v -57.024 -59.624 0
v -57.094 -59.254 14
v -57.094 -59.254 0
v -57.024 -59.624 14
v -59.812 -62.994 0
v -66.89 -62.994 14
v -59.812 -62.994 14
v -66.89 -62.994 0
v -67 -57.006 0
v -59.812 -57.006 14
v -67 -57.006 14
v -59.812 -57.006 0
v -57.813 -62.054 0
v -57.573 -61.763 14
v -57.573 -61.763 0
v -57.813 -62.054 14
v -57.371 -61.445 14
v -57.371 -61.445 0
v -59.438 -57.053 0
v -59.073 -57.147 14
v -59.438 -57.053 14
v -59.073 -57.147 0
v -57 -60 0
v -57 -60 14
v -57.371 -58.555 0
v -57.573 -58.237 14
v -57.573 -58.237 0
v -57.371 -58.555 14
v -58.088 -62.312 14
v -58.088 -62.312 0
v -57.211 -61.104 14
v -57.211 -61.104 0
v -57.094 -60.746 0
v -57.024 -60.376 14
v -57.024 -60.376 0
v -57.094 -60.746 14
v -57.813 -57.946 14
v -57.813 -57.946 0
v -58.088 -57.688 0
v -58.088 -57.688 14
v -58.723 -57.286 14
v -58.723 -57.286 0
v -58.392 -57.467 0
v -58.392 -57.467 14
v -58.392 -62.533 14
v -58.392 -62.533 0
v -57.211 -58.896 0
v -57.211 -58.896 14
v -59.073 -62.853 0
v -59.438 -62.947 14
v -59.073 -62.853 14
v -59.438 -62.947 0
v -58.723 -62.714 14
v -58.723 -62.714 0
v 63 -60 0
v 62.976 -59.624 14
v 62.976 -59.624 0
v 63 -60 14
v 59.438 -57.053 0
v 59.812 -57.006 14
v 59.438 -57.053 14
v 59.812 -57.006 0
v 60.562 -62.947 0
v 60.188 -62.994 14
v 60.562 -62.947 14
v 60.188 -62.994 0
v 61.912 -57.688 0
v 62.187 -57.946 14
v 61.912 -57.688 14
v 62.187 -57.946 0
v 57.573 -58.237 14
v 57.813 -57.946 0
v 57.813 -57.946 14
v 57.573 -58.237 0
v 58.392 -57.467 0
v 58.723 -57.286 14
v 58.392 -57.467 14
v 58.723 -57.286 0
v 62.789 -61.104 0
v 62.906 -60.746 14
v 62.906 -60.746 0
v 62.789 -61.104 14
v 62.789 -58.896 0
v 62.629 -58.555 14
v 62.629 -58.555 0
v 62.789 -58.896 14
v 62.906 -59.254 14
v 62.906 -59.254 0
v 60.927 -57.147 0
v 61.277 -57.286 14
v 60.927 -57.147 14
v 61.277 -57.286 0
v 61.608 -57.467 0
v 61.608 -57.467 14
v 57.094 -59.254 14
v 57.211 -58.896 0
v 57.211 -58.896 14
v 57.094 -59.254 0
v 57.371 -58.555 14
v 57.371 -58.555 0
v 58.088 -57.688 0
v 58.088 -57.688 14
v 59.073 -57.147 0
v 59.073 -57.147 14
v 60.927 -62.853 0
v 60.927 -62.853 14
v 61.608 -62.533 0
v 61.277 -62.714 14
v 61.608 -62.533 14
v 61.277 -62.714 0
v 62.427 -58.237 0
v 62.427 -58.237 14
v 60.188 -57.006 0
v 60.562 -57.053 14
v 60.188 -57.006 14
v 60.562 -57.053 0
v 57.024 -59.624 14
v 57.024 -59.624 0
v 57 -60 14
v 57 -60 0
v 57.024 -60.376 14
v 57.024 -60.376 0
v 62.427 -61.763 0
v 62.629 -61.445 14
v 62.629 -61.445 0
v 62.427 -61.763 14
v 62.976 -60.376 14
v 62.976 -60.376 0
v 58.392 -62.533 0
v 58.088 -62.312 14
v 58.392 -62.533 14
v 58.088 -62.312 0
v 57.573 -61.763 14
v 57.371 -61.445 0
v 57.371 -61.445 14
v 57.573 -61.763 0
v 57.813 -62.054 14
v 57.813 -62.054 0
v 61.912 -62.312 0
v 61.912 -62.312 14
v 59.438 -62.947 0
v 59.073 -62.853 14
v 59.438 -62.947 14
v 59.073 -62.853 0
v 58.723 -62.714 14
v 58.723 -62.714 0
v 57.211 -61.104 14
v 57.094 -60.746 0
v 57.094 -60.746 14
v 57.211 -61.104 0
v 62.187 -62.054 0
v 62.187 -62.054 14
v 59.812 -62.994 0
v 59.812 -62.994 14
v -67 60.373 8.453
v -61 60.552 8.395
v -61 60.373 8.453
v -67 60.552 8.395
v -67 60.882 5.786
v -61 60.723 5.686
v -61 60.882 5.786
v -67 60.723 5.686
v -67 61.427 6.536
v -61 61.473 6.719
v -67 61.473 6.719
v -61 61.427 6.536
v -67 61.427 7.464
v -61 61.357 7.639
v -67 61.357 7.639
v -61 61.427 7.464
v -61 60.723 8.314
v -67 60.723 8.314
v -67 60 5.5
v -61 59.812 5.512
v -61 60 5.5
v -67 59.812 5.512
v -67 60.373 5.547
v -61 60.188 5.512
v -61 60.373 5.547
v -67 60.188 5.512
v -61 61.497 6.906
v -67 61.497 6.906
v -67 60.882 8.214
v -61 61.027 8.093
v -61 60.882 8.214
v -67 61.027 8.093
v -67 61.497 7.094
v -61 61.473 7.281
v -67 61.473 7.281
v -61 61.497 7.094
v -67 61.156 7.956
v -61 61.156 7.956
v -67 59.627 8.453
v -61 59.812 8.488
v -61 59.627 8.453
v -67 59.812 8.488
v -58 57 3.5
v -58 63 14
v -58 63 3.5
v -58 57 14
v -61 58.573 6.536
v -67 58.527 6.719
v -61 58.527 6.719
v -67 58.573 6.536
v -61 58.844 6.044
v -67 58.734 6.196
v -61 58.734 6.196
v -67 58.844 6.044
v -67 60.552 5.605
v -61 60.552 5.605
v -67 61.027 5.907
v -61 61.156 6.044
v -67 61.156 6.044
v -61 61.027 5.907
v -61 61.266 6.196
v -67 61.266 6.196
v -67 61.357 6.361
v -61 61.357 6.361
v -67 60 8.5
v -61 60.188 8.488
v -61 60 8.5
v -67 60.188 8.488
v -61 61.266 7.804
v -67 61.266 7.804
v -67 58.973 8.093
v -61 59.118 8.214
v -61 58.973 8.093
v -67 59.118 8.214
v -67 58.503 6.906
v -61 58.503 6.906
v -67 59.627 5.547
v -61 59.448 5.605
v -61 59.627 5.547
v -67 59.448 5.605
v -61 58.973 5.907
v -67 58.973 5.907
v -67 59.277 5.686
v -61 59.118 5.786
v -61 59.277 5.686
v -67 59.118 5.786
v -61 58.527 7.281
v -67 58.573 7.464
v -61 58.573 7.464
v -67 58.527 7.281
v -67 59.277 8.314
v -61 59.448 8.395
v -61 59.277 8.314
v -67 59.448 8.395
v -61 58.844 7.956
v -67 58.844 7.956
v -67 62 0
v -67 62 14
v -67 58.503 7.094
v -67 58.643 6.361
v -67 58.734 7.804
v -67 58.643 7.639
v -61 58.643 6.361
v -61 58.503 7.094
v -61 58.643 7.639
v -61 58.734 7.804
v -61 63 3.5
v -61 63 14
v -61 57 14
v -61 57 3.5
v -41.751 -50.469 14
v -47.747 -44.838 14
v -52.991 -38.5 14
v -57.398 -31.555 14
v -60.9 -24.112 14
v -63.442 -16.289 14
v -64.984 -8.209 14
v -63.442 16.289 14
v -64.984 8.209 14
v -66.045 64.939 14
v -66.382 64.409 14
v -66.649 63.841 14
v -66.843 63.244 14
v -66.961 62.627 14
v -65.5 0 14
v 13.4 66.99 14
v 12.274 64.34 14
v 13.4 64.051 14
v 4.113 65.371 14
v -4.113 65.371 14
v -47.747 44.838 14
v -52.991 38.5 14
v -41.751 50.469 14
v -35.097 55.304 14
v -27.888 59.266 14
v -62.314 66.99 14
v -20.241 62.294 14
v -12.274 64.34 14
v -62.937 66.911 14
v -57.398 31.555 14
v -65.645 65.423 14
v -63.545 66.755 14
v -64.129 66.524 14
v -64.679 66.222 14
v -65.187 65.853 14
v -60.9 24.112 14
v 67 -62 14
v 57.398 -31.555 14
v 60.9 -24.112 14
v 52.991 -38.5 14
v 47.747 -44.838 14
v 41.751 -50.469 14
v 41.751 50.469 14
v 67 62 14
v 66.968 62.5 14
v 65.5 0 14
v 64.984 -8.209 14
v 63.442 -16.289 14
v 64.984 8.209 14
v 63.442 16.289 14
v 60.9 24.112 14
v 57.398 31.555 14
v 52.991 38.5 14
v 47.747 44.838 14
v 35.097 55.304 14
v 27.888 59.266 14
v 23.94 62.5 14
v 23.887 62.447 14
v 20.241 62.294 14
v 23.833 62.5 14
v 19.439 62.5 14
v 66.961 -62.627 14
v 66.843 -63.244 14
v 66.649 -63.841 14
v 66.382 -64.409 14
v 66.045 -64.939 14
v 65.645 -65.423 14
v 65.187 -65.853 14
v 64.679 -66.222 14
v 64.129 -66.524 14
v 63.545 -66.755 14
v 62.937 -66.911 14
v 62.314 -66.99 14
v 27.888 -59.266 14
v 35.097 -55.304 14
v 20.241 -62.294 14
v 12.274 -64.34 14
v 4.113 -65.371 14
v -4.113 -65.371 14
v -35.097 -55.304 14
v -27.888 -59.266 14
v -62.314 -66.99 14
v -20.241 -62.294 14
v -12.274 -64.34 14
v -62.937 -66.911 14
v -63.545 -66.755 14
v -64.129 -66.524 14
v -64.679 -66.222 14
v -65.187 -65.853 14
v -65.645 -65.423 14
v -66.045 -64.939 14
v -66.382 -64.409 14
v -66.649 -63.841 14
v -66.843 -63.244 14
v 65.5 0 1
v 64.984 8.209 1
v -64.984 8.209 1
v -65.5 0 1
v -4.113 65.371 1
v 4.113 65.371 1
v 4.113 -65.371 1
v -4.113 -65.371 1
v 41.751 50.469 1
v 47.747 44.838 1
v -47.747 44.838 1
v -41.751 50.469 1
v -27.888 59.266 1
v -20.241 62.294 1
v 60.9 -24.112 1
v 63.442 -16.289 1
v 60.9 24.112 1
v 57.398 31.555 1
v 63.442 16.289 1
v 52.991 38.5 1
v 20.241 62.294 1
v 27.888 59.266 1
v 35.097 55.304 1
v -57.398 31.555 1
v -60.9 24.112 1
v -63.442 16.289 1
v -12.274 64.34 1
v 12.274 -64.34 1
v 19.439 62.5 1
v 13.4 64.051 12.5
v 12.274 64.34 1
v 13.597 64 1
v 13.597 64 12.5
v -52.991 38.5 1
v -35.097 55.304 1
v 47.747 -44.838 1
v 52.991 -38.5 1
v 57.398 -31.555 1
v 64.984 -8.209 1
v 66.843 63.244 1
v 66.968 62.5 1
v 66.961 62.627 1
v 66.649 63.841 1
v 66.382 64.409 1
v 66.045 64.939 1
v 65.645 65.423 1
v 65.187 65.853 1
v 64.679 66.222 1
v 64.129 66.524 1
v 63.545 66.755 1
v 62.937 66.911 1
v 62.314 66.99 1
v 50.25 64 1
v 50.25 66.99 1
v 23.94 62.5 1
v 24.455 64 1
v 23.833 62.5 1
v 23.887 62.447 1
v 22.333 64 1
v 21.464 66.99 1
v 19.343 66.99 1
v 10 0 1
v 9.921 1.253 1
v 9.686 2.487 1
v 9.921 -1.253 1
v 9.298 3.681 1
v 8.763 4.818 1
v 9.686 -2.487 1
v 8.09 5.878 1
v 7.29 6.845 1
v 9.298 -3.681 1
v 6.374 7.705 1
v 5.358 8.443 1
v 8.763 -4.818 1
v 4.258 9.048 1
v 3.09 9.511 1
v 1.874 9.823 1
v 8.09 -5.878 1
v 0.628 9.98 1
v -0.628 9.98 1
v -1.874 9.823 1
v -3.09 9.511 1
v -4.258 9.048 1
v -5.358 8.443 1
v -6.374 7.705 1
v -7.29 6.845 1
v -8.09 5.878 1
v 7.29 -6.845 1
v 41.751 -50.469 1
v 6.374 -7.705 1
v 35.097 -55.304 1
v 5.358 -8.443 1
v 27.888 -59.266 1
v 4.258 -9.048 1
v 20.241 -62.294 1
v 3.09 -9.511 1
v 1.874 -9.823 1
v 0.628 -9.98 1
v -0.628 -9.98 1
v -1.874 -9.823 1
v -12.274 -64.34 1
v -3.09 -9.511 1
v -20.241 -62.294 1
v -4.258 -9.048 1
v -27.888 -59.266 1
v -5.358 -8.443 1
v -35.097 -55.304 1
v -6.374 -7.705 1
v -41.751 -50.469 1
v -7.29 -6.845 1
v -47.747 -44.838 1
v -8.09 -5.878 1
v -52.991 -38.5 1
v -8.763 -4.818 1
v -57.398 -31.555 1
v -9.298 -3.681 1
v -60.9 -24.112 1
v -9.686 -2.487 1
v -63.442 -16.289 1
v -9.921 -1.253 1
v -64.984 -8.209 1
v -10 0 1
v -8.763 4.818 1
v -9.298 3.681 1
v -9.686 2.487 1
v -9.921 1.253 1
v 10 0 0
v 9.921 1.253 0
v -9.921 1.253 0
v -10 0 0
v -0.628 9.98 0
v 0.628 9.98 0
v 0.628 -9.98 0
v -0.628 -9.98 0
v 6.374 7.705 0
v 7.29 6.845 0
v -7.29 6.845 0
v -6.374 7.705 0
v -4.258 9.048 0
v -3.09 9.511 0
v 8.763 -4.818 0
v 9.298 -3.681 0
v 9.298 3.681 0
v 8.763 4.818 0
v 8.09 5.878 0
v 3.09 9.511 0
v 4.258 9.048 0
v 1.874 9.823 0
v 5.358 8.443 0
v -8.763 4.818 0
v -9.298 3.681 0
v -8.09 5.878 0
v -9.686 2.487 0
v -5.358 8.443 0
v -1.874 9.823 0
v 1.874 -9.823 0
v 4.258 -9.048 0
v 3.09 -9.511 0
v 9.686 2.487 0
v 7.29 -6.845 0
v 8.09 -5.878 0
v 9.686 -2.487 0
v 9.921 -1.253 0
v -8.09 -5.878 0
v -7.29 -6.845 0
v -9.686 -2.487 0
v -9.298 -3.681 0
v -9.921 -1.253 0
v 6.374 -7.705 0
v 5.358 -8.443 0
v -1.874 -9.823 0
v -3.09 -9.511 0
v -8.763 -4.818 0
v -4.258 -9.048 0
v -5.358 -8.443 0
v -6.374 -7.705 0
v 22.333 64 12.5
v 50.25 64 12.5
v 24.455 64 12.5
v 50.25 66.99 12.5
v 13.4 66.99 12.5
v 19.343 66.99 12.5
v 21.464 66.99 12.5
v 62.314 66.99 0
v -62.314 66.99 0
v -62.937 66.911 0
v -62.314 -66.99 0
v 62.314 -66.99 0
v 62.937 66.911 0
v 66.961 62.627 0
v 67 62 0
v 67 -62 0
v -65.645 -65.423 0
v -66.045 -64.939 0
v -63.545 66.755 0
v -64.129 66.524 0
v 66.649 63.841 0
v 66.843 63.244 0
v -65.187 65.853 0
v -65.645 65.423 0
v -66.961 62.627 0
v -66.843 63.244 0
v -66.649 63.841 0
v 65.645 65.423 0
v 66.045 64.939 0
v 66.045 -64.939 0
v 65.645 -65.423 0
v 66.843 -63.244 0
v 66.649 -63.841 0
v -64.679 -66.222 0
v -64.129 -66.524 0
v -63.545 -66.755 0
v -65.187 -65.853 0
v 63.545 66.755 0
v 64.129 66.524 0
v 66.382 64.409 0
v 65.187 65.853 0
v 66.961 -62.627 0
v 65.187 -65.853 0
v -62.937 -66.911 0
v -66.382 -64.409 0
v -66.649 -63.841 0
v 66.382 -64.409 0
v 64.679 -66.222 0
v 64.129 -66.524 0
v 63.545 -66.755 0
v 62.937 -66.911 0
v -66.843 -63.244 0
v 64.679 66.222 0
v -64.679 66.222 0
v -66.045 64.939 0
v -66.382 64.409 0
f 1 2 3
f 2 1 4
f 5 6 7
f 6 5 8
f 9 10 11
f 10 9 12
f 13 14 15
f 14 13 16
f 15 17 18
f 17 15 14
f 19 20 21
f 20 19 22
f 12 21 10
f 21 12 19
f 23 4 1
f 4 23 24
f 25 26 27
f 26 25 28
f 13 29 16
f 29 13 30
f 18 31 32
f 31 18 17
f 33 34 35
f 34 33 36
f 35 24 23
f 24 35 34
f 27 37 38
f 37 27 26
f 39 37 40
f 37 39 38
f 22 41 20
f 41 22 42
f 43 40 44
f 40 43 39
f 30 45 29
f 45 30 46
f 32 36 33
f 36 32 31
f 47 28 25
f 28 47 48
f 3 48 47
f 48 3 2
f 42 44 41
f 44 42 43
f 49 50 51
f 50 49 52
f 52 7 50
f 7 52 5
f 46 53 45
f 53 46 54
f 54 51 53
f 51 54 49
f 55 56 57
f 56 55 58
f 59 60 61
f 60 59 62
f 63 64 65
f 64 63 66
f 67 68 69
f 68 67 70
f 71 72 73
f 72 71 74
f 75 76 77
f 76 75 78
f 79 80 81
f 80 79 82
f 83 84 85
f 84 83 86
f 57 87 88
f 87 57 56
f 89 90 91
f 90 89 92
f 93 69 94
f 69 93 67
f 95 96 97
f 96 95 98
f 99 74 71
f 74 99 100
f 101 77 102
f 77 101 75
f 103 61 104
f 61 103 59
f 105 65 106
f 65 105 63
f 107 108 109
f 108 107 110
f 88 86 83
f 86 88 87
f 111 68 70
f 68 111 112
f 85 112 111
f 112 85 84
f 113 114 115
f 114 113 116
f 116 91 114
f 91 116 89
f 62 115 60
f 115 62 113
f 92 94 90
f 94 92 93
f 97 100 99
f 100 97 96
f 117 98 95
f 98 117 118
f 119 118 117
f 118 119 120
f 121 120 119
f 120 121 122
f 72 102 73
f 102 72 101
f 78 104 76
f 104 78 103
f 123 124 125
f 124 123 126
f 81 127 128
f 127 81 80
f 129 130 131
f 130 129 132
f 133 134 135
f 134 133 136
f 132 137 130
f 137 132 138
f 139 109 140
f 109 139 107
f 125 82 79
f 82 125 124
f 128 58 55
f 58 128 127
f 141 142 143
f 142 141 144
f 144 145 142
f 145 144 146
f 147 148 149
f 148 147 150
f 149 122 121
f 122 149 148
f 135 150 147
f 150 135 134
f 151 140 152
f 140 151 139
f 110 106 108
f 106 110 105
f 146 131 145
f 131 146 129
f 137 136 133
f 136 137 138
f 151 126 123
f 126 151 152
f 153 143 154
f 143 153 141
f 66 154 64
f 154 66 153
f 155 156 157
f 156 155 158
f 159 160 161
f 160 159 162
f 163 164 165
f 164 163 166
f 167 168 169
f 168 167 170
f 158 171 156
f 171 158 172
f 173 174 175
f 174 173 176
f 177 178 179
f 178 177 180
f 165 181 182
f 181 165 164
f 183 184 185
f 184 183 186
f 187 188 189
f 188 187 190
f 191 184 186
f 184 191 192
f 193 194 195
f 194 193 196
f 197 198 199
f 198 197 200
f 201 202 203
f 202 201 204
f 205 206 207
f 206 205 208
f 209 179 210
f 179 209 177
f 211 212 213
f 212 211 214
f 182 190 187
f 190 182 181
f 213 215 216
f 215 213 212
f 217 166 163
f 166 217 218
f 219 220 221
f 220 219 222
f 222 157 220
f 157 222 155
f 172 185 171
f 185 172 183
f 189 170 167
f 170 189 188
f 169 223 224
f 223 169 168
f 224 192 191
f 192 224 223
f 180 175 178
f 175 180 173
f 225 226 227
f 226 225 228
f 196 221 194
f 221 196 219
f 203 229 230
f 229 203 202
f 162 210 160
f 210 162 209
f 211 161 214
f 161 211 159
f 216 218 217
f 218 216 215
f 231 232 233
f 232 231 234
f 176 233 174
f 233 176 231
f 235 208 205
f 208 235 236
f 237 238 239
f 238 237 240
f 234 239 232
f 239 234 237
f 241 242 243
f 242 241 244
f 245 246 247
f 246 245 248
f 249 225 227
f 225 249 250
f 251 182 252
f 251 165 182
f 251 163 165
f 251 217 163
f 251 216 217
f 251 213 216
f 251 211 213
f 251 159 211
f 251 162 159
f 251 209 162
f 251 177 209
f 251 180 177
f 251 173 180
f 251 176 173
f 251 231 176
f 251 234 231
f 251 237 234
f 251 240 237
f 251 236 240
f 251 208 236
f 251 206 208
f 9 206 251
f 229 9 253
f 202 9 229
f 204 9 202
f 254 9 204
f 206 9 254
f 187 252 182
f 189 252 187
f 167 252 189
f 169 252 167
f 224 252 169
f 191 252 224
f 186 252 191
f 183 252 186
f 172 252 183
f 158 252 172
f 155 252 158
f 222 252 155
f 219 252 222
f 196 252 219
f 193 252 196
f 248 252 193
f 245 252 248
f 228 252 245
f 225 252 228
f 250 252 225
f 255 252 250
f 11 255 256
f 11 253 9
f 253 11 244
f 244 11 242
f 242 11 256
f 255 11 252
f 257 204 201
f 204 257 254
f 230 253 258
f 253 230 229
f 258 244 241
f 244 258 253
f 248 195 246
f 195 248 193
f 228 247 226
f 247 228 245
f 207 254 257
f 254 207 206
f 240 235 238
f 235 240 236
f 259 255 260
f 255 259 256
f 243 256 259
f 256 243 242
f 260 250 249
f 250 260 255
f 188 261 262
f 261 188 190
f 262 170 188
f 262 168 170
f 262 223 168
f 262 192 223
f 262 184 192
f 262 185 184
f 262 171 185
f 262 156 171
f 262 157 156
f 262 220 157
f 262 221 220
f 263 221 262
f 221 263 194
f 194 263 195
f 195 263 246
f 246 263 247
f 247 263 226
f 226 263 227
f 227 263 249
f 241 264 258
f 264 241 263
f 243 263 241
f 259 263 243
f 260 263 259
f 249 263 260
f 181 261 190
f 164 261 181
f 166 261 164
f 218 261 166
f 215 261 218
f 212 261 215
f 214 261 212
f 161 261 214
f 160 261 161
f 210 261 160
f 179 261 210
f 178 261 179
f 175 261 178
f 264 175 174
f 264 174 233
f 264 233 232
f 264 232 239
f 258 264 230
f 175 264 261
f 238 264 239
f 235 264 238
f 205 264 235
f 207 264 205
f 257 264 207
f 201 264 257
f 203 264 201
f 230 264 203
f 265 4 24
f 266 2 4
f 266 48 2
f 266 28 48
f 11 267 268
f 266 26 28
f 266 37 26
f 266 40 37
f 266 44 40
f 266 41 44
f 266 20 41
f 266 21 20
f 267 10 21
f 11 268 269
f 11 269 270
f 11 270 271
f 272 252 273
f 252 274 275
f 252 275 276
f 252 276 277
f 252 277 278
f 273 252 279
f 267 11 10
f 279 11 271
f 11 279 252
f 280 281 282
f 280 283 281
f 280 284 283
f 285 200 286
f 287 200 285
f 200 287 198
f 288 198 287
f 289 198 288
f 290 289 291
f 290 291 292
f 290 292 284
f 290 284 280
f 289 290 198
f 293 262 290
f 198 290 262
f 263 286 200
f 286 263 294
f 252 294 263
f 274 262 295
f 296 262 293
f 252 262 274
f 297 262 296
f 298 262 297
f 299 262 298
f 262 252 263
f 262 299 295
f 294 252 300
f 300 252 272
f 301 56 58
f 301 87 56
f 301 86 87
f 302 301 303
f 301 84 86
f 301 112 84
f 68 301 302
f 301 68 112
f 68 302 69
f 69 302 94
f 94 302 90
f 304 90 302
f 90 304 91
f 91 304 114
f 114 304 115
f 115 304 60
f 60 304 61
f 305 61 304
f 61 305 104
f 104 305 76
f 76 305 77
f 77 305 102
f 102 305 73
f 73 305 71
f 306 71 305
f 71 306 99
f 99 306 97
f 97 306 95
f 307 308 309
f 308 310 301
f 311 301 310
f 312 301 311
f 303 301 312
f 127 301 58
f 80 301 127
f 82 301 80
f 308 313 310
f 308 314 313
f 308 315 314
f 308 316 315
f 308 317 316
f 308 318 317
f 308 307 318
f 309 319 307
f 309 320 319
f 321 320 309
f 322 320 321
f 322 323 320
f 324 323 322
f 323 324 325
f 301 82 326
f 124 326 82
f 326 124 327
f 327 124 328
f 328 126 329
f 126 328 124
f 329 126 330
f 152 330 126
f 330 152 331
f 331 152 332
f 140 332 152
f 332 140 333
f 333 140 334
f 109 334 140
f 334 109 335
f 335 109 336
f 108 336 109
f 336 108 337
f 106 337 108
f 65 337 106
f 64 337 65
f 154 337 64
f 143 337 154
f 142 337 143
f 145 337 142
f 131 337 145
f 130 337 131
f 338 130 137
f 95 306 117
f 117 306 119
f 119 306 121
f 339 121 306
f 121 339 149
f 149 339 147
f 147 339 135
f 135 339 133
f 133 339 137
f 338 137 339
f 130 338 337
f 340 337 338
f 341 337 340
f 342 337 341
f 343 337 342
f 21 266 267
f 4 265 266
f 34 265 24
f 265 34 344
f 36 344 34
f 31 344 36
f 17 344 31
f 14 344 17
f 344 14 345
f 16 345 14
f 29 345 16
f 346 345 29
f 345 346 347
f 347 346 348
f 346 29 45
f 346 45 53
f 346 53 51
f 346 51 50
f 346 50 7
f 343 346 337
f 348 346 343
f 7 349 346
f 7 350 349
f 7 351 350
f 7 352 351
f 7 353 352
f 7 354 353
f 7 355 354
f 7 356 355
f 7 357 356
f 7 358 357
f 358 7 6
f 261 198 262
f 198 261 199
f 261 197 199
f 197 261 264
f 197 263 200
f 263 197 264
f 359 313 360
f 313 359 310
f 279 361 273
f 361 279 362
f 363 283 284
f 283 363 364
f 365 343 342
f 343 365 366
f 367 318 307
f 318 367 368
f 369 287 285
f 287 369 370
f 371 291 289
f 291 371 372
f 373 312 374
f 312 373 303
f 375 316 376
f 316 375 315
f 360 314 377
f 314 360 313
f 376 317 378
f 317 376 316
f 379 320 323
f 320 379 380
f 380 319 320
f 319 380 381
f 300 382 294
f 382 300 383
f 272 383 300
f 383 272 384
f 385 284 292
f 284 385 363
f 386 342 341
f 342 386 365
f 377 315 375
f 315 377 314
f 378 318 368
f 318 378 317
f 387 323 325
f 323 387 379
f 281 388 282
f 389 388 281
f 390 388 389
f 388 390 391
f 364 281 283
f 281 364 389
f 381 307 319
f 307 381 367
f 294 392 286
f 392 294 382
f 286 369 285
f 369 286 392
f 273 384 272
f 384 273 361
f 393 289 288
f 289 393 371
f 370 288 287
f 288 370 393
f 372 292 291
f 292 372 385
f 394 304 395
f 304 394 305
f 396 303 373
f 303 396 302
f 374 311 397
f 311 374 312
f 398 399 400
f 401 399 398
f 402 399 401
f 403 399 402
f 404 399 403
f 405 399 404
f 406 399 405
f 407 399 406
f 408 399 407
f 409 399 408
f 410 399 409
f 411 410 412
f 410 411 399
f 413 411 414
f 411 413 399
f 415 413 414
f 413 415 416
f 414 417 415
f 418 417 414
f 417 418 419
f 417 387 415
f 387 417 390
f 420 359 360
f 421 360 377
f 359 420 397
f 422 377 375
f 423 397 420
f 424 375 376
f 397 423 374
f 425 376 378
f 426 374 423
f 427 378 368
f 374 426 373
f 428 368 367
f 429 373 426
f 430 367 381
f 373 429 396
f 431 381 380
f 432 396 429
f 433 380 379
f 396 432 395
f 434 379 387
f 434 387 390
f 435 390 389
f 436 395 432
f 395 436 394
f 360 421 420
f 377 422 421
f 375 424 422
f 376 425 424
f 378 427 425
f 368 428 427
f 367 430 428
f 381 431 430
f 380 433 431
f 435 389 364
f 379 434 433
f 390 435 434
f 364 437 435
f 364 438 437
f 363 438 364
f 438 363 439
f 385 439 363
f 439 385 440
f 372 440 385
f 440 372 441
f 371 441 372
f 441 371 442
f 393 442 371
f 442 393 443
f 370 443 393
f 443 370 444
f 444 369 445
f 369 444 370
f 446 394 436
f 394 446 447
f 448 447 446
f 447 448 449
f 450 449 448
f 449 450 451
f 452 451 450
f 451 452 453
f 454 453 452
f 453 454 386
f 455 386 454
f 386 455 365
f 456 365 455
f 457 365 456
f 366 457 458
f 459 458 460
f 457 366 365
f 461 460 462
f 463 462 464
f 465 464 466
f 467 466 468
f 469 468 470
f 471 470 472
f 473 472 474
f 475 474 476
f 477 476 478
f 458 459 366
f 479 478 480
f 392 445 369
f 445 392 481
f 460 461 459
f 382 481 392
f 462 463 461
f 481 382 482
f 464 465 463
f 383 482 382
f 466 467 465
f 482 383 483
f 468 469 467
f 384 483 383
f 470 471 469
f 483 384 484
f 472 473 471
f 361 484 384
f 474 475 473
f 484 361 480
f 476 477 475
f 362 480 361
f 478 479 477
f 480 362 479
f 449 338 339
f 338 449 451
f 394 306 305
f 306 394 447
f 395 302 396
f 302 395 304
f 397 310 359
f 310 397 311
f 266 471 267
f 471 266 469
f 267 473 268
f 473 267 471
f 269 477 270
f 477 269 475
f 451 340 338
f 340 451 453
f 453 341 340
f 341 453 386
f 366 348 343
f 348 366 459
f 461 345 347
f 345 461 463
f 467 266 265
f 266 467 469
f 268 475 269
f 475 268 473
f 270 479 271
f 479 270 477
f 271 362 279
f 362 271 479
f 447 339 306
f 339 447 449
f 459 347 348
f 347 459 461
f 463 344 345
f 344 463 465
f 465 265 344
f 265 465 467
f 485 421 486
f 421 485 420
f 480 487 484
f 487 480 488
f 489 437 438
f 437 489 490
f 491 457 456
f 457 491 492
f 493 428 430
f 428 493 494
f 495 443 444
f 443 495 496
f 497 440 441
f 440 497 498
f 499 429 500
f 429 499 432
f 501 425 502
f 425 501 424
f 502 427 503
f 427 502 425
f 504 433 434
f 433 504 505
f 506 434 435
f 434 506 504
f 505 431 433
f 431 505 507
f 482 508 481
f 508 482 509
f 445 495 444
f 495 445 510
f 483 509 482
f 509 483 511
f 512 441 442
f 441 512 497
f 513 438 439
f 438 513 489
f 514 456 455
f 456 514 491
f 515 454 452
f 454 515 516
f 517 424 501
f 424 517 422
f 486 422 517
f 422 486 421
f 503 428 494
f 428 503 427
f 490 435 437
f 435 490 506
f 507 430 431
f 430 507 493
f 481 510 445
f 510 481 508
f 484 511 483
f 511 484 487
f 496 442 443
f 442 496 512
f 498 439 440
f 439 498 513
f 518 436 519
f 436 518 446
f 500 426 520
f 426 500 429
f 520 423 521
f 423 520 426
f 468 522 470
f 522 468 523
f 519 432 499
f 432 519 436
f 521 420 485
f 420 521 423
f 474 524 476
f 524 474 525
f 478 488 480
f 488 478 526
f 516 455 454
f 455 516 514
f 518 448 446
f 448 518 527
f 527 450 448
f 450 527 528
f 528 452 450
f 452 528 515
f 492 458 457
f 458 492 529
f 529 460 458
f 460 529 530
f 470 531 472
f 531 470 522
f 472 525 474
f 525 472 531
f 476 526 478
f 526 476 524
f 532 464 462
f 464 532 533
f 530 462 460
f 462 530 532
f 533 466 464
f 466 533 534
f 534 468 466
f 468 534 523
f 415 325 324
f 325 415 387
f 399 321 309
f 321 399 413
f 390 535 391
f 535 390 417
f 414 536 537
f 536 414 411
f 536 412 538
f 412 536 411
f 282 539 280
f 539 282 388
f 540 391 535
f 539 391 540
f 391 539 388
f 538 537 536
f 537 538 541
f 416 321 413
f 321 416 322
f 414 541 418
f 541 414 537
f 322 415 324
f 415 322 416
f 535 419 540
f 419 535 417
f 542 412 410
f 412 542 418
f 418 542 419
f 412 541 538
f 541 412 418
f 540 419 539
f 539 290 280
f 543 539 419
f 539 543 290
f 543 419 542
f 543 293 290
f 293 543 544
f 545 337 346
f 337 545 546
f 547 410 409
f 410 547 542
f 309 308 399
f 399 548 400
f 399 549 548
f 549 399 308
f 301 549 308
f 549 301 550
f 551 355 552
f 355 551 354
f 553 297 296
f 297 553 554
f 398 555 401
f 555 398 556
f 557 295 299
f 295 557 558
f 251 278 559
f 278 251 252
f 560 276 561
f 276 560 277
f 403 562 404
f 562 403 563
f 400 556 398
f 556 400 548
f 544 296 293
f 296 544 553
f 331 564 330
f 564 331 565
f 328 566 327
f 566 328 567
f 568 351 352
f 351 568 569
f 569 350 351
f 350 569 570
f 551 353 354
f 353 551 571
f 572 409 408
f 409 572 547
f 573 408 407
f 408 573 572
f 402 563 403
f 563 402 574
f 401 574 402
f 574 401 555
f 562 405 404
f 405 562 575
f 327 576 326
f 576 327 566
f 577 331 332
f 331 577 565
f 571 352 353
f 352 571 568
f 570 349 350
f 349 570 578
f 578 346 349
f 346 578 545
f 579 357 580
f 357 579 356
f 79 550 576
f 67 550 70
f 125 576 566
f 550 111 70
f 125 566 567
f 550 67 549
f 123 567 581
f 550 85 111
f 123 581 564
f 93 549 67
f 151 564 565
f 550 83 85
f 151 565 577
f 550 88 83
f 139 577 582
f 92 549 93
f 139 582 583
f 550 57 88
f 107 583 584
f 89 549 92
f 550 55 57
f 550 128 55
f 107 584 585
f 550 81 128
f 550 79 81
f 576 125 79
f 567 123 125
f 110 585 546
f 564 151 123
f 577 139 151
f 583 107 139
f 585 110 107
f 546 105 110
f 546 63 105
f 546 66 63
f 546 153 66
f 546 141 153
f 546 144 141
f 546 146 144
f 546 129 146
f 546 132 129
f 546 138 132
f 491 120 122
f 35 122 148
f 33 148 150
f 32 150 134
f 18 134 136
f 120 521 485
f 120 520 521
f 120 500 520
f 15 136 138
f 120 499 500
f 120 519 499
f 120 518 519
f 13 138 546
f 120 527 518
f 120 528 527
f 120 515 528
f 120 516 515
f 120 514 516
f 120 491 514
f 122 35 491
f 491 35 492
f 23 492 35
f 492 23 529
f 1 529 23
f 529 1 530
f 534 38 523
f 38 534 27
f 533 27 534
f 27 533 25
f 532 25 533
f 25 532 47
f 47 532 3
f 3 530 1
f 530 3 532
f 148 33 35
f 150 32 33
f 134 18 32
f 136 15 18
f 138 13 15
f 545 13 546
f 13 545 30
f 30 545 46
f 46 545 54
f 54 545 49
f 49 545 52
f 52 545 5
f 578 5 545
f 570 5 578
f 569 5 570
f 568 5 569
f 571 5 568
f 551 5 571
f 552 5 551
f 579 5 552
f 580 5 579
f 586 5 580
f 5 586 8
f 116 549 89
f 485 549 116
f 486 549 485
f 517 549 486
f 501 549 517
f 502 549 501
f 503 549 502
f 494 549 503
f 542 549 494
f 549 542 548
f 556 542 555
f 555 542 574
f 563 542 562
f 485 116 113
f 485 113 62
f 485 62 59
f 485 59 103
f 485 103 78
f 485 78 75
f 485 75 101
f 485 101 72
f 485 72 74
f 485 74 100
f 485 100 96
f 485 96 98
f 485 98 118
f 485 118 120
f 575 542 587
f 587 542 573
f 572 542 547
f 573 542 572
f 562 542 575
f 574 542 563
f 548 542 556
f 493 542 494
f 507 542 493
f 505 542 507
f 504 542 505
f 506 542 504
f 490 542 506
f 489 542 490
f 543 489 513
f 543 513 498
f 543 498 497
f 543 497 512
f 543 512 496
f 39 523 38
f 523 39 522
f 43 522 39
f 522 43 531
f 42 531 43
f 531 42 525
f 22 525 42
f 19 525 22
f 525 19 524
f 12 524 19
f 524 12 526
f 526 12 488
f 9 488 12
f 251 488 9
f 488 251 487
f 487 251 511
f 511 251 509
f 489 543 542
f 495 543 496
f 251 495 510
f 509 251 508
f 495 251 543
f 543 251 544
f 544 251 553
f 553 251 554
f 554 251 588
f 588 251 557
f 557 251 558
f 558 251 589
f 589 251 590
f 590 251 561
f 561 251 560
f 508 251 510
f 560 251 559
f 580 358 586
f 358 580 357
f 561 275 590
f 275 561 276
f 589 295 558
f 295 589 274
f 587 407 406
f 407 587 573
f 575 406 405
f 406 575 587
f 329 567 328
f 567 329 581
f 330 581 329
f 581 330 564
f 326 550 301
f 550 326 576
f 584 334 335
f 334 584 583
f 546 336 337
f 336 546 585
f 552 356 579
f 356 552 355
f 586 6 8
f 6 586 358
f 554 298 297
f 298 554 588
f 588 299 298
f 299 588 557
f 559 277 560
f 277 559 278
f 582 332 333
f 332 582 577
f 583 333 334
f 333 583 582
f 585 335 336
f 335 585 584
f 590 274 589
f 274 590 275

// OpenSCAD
$fn = 50;


difference() {
	union() {
		translate(v = [0, 0, 0]) {
			rotate(a = [0, 0, 0]) {
				hull() {
					translate(v = [-62.0000000000, 62.0000000000, 0]) {
						rotate(a = [0, 0, 0]) {
							translate(v = [0, 0, 0]) {
								rotate(a = [0, 0, 0]) {
									cylinder(h = 14, r = 5);
								}
							}
						}
					}
					translate(v = [62.0000000000, 62.0000000000, 0]) {
						rotate(a = [0, 0, 0]) {
							translate(v = [0, 0, 0]) {
								rotate(a = [0, 0, 0]) {
									cylinder(h = 14, r = 5);
								}
							}
						}
					}
					translate(v = [-62.0000000000, -62.0000000000, 0]) {
						rotate(a = [0, 0, 0]) {
							translate(v = [0, 0, 0]) {
								rotate(a = [0, 0, 0]) {
									cylinder(h = 14, r = 5);
								}
							}
						}
					}
					translate(v = [62.0000000000, -62.0000000000, 0]) {
						rotate(a = [0, 0, 0]) {
							translate(v = [0, 0, 0]) {
								rotate(a = [0, 0, 0]) {
									cylinder(h = 14, r = 5);
								}
							}
						}
					}
				}
			}
		}
	}
	union() {
		translate(v = [-67.5000000000, -60.0000000000, -125]) {
			rotate(a = [0, 0, 0]) {
				hull() {
					translate(v = [7.5000000000, 0, 0]) {
						rotate(a = [0, 0, 0]) {
							translate(v = [0, 0, 0]) {
								rotate(a = [0, 0, 0]) {
									cylinder(h = 250, r = 3.0000000000);
								}
							}
						}
					}
					translate(v = [-7.5000000000, 0, 0]) {
						rotate(a = [0, 0, 0]) {
							translate(v = [0, 0, 0]) {
								rotate(a = [0, 0, 0]) {
									cylinder(h = 250, r = 3.0000000000);
								}
							}
						}
					}
				}
			}
		}
		translate(v = [60.0000000000, -60.0000000000, -125.0000000000]) {
			rotate(a = [0, 0, 0]) {
				cylinder(h = 250, r = 3.0000000000);
			}
		}
		translate(v = [-67.0000000000, 60.0000000000, 7.0000000000]) {
			rotate(a = [0, 90, 0]) {
				cylinder(h = 9, r = 1.5000000000);
			}
		}
		translate(v = [-61.0000000000, 57.0000000000, 3.5000000000]) {
			rotate(a = [0, 0, 0]) {
				cube(size = [3, 6, 10.5000000000]);
			}
		}
		translate(v = [0, 0, 1.0000000000]) {
			rotate(a = [0, 0, 0]) {
				cylinder(h = 16, r = 65.5000000000);
			}
		}
		translate(v = [0, 0, -7.0000000000]) {
			rotate(a = [0, 0, 0]) {
				cylinder(h = 14, r = 10.0000000000);
			}
		}
		translate(v = [0.0000000000, 62.5000000000, 1]) {
			rotate(a = [0, 0, 0]) {
				cube(size = [67.0000000000, 1.5000000000, 16]);
			}
		}
		translate(v = [50.2500000000, 62.5000000000, 1]) {
			rotate(a = [0, 0, 0]) {
				cube(size = [16.7500000000, 4.5000000000, 16]);
			}
		}
		translate(v = [13.4000000000, 62.5000000000, 12.5000000000]) {
			rotate(a = [0, 0, 0]) {
				cube(size = [53.6000000000, 4.5000000000, 1.5000000000]);
			}
		}
		translate(v = [18.5833333333, 67.7500000000, 1]) {
			rotate(a = [0, 0, -45]) {
				cube(size = [7.5000000000, 1.5000000000, 16]);
			}
		}
	}
}
